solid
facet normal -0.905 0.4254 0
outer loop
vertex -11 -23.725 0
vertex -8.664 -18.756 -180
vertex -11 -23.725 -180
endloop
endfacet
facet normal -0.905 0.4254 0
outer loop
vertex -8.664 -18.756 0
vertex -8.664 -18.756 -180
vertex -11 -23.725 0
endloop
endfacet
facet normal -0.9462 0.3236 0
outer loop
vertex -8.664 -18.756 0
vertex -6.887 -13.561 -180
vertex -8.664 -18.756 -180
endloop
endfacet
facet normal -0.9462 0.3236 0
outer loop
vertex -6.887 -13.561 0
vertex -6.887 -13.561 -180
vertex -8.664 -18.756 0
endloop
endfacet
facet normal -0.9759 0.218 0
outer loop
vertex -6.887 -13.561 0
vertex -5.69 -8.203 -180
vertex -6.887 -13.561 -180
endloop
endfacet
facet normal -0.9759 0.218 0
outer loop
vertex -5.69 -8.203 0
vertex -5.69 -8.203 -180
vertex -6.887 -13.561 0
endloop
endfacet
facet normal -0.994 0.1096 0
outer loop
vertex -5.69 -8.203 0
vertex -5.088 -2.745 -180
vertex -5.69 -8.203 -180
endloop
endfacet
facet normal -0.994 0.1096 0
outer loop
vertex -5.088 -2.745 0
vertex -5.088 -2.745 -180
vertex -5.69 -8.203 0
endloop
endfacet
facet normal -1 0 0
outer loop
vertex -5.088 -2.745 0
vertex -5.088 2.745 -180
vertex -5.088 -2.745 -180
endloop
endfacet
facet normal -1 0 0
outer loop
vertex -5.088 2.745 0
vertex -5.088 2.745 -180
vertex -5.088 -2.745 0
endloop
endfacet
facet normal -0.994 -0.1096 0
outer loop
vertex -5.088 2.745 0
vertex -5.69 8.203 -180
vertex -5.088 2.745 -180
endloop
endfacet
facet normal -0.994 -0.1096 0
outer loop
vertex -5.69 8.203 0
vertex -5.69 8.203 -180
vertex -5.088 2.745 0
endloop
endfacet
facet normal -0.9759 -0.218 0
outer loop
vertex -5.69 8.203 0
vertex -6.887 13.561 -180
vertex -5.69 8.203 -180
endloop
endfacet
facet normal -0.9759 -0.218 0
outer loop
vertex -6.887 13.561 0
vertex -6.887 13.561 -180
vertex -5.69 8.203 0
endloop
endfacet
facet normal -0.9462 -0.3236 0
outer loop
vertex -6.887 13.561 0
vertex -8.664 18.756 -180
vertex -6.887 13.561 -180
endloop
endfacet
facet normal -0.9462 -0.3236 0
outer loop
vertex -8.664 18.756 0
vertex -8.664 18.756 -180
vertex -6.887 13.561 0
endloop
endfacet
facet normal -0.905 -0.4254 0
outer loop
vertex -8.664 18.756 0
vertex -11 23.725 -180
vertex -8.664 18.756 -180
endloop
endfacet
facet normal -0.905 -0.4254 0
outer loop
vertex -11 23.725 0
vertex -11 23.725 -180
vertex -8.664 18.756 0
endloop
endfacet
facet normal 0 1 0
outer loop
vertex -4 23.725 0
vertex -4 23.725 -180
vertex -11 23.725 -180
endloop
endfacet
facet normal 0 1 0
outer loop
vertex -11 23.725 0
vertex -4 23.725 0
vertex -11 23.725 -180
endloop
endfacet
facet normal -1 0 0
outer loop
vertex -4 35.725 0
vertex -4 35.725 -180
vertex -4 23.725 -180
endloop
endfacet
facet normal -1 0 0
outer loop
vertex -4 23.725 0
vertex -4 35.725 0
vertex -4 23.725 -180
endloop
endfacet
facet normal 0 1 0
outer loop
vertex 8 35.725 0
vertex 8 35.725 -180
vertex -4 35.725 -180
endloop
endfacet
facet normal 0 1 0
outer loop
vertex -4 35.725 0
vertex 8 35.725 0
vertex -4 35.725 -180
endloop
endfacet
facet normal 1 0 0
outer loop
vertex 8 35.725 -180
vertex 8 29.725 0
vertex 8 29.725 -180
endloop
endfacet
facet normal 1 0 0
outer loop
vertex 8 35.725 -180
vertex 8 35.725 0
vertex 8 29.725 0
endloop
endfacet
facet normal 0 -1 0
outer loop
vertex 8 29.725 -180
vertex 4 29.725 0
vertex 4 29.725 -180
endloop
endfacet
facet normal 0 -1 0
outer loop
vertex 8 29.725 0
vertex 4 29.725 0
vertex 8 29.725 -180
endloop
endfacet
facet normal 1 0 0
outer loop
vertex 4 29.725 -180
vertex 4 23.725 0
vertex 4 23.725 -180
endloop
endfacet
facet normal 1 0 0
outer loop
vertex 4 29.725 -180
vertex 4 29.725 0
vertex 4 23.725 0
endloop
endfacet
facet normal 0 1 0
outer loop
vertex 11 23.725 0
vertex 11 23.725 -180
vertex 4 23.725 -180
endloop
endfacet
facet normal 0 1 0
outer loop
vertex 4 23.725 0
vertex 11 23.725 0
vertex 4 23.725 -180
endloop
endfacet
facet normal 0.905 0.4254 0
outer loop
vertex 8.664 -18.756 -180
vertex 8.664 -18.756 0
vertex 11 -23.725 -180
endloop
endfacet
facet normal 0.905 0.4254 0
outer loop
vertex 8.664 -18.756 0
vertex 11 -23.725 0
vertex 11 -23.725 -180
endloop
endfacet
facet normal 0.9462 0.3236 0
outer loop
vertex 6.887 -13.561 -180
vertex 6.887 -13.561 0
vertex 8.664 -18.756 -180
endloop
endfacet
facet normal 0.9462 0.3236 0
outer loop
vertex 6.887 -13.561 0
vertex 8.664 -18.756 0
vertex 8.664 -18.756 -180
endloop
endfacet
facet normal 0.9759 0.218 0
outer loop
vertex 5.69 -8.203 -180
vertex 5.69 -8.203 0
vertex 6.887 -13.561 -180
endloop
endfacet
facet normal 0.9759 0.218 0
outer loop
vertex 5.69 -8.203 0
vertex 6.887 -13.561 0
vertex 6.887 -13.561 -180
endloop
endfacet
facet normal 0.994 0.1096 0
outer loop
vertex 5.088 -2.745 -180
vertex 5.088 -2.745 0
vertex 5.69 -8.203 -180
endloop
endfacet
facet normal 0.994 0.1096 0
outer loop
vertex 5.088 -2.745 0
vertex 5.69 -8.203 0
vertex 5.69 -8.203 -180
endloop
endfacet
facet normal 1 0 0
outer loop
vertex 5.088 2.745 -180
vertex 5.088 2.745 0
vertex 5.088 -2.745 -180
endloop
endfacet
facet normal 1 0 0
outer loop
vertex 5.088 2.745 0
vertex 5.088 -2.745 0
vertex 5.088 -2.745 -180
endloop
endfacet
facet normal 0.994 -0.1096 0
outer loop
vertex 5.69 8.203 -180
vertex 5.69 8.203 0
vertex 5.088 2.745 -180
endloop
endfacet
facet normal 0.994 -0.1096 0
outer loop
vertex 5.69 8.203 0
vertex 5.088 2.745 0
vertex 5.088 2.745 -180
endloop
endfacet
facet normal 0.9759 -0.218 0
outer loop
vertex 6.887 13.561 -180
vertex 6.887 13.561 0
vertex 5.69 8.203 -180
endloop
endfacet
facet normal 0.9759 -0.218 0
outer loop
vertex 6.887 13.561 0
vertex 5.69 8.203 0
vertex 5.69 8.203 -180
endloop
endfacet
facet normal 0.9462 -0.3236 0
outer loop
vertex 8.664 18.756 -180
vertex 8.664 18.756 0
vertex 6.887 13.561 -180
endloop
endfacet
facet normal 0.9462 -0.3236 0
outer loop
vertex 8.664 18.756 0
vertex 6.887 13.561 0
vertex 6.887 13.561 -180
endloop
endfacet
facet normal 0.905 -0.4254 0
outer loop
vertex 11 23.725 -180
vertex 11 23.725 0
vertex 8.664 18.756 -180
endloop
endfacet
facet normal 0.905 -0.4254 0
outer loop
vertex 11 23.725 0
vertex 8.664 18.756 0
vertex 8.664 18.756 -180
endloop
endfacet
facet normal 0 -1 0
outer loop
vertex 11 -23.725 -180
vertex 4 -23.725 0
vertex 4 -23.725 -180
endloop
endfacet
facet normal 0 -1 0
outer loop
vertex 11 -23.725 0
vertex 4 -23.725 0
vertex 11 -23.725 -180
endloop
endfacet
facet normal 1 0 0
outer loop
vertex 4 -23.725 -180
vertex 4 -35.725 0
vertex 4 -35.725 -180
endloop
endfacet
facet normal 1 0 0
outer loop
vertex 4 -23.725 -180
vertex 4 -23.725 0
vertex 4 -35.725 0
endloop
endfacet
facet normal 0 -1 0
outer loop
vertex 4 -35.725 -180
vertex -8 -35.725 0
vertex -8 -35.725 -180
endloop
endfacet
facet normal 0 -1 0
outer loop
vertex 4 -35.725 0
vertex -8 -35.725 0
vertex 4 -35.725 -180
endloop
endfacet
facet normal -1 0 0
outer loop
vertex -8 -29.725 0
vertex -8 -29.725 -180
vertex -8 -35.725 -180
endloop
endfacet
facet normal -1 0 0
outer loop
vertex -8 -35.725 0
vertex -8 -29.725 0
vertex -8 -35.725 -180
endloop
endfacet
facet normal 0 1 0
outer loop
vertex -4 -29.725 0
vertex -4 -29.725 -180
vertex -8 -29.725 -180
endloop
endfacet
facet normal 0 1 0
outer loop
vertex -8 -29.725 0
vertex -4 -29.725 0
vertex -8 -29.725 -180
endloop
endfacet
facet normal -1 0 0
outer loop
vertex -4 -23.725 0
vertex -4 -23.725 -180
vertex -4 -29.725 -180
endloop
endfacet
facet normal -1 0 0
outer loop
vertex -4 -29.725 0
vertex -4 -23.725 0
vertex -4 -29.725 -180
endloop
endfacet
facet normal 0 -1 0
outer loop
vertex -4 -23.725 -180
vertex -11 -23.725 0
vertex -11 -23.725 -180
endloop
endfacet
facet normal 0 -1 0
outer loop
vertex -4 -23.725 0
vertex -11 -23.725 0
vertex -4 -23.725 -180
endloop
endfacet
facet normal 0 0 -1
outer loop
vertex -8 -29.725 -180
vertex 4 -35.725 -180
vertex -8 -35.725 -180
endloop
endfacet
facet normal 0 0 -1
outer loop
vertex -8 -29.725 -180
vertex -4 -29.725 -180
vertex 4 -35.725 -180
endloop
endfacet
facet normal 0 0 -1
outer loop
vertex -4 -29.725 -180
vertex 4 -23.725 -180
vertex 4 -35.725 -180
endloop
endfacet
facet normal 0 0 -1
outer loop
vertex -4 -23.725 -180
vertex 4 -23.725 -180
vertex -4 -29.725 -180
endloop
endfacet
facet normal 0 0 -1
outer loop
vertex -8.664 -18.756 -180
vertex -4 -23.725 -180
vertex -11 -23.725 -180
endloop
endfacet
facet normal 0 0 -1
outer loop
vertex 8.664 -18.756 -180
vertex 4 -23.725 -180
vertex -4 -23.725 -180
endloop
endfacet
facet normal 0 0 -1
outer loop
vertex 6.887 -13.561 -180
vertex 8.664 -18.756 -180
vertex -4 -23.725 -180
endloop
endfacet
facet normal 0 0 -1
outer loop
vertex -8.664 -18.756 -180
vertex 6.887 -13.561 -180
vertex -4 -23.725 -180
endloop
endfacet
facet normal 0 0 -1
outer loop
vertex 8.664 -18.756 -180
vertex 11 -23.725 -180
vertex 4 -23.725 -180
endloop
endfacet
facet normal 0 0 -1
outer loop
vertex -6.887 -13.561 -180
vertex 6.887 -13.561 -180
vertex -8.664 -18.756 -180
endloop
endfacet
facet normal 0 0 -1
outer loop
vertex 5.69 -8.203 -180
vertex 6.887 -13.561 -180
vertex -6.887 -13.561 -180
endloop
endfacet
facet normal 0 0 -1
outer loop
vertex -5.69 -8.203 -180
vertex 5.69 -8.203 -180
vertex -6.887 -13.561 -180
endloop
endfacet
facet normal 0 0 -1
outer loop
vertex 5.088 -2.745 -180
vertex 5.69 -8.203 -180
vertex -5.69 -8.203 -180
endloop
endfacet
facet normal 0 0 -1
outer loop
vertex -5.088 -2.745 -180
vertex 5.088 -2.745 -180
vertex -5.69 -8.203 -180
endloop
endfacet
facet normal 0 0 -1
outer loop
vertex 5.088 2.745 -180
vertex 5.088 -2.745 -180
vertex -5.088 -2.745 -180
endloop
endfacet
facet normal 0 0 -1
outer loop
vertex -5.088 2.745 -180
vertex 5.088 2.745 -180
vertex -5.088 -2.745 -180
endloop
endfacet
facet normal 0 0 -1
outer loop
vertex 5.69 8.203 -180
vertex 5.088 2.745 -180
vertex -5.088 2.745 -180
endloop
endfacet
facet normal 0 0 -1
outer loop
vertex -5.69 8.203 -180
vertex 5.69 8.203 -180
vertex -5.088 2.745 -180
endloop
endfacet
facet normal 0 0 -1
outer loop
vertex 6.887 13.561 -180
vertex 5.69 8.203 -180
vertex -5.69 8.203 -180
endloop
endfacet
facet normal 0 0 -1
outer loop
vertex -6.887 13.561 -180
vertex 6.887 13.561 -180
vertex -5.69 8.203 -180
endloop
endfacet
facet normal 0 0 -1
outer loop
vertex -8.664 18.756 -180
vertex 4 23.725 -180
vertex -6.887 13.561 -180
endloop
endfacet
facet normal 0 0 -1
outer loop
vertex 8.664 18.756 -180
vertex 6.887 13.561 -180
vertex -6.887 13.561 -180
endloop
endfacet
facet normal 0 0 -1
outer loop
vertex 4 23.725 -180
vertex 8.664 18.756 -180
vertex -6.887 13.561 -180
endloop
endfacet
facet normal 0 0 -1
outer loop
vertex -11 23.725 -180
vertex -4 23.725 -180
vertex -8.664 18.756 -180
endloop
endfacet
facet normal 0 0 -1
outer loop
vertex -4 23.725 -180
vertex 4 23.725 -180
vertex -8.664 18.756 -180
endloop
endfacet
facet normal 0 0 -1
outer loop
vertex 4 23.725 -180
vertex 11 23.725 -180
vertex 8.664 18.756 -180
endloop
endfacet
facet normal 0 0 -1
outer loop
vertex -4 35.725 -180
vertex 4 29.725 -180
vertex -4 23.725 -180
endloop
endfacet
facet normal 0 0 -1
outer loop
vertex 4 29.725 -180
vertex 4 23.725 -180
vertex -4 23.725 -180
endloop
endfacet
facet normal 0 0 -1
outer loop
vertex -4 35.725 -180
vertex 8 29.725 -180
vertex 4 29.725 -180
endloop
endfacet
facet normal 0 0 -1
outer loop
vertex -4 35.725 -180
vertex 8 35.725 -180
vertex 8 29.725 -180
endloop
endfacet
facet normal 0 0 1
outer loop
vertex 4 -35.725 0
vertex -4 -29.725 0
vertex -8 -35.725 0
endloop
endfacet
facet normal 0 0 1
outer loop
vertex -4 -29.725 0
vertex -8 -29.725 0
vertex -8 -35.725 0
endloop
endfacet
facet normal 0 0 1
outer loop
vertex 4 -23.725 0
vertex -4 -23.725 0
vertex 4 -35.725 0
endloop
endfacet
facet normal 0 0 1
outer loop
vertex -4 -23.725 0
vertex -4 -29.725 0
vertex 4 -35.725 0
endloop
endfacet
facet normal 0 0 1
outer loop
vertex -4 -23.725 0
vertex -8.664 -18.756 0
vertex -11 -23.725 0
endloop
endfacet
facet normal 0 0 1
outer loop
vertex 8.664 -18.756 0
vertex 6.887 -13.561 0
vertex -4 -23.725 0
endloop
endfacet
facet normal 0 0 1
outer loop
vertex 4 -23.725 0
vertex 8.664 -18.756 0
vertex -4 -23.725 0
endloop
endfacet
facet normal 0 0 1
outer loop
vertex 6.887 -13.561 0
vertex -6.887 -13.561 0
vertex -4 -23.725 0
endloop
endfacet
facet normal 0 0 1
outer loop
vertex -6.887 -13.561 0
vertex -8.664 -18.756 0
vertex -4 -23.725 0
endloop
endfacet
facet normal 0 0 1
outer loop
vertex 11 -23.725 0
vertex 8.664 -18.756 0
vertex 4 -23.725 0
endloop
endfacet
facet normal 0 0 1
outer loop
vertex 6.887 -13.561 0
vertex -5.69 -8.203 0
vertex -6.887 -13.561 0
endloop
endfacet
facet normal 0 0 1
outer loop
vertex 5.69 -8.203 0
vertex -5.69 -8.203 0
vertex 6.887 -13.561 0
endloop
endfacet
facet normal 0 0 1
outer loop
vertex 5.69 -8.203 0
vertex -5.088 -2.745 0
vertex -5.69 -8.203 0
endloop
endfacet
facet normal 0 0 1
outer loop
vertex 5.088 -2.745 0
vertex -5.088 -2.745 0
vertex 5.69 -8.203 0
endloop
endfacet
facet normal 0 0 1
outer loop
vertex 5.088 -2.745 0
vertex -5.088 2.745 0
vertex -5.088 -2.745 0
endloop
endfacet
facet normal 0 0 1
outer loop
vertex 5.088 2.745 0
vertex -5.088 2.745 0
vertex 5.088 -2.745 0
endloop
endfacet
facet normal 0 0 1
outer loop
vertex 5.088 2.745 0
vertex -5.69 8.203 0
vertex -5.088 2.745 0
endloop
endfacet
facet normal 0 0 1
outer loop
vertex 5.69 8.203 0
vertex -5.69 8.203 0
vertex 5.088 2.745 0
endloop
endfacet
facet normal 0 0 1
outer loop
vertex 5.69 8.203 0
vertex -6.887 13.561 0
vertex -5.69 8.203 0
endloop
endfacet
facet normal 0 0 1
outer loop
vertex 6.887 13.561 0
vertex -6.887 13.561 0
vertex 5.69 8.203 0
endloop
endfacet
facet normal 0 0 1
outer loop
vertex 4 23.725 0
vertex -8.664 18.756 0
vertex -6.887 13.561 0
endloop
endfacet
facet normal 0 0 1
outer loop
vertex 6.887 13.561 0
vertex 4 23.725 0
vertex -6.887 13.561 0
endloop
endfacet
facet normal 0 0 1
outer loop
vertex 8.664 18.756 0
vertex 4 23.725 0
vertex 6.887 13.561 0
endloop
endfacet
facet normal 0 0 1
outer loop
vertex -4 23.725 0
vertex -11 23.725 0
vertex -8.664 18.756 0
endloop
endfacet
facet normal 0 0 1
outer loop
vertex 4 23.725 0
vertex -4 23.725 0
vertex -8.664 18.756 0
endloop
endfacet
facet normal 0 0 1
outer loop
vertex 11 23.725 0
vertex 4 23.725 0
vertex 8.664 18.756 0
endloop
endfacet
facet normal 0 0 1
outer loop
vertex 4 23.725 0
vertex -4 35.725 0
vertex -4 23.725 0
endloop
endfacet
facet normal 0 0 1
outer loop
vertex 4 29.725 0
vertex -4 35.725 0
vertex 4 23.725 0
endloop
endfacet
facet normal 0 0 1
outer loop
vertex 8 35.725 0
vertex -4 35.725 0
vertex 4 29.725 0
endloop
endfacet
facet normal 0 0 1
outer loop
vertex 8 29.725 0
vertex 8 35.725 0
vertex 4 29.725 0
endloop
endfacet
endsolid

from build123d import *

# Parameters (mm, degrees)
EXTRUDE_1_DEPTH = 180


with BuildPart() as part:
    # Эскиз1 → Бобышка-Вытянуть1 (new body)
    with BuildSketch(Plane.XY):
        with BuildLine():
            Line((-11, -23.725), (-4, -23.725))
            Line((-4, -23.725), (-4, -29.725))
            Line((-4, -29.725), (-8, -29.725))
            Line((-8, -29.725), (-8, -35.725))
            Line((-8, -35.725), (4, -35.725))
            Line((4, -35.725), (4, -23.725))
            Line((4, -23.725), (11, -23.725))
            ThreePointArc((11, -23.725), (5.012775134, 0), (11, 23.725))
            Line((11, 23.725), (4, 23.725))
            Line((4, 23.725), (4, 29.725))
            Line((4, 29.725), (8, 29.725))
            Line((8, 29.725), (8, 35.725))
            Line((8, 35.725), (-4, 35.725))
            Line((-4, 35.725), (-4, 23.725))
            Line((-4, 23.725), (-11, 23.725))
            ThreePointArc((-11, 23.725), (-5.012775134, 0), (-11, -23.725))
        make_face()
    extrude(amount=-EXTRUDE_1_DEPTH)


solid = part.part
